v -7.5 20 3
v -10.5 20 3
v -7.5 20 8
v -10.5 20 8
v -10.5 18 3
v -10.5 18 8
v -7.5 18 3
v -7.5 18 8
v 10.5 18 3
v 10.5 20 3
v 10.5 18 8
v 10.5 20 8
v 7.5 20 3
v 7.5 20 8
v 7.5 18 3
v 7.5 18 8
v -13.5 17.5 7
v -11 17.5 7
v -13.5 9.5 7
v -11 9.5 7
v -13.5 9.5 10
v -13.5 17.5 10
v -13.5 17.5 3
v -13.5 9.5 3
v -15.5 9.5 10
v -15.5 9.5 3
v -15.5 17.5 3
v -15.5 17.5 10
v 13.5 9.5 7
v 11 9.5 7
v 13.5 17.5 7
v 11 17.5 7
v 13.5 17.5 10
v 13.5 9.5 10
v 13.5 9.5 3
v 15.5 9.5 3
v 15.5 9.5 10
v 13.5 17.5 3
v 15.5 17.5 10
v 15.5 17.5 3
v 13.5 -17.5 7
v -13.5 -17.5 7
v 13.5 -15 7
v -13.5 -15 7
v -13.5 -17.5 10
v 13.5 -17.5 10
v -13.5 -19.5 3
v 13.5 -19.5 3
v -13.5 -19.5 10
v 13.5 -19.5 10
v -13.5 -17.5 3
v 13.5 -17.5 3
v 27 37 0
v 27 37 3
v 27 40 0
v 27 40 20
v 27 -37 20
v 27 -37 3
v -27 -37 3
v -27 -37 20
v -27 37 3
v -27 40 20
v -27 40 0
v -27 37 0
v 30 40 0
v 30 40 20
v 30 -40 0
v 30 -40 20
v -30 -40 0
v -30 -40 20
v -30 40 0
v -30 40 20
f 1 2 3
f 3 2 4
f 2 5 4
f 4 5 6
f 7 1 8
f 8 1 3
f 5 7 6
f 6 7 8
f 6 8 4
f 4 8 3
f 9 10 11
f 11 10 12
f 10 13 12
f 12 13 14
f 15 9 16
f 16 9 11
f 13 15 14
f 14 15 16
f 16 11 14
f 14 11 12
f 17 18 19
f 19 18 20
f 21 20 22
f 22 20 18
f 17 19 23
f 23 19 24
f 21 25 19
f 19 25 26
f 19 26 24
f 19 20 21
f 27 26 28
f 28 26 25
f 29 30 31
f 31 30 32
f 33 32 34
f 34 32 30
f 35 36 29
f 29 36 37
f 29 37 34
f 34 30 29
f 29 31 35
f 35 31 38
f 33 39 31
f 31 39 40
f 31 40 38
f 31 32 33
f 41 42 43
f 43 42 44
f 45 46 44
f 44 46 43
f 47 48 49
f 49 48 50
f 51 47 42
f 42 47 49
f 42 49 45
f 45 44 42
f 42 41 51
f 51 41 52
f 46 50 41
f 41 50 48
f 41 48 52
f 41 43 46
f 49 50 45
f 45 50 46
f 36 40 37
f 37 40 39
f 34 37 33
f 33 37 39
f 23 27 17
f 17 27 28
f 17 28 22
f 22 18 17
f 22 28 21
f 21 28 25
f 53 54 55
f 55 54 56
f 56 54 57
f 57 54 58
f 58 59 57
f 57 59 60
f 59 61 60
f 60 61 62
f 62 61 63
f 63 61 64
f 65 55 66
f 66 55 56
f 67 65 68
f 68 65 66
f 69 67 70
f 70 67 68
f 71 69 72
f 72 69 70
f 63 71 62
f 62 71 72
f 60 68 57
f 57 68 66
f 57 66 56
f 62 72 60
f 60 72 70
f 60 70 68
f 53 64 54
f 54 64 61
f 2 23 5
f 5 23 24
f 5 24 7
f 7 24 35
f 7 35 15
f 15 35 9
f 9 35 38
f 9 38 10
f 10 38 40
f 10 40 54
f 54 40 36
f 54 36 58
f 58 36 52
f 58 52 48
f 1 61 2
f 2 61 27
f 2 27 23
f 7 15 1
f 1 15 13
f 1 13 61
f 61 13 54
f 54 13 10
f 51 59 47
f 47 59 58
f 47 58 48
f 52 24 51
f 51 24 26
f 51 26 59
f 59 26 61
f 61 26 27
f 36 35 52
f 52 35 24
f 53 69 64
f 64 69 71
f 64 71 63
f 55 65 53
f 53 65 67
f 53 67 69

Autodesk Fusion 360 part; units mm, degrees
sketch "Sketch1" plane through (0, 0, 0) normal (0, 0, 1) x (1, 0, 0)
  line L0 (30, -40) -> (-30, -40)
  line L1 (-30, -40) -> (-30, 40)
  line L2 (-27, 40) -> (27, 40)
  line L3 (30, 40) -> (30, -40)
  line L4 (30, -40) -> (-30, 40) construction
  line L5 (-30, -40) -> (30, 40) construction
  line L6 (27, -37) -> (-27, -37)
  line L7 (-27, -37) -> (-27, 37)
  line L8 (-27, 37) -> (27, 37)
  line L9 (27, 37) -> (27, -37)
  line L10 (27, 37) -> (27, 40)
  line L11 (-27, 37) -> (-27, 40)
  line L12 (27, 40) -> (30, 40)
  line L13 (-30, 40) -> (-27, 40)
  line L14 (13.5, 17.5) -> (-13.5, 17.5)
  line L15 (-13.5, 17.5) -> (-13.5, -17.5)
  line L16 (-13.5, -17.5) -> (13.5, -17.5)
  line L17 (13.5, -17.5) -> (13.5, 17.5)
  line L18 (13.5, 17.5) -> (-13.5, -17.5) construction
  line L19 (-13.5, 17.5) -> (13.5, -17.5) construction
  line L20 (-13.5, -17.5) -> (13.5, -17.5)
  line L21 (13.5, -17.5) -> (13.5, -19.5)
  line L22 (13.5, -19.5) -> (-13.5, -19.5)
  line L23 (-13.5, -19.5) -> (-13.5, -17.5)
  line L24 (13.5, 17.5) -> (15.5, 17.5)
  line L25 (15.5, 17.5) -> (15.5, 9.5)
  line L26 (15.5, 9.5) -> (13.5, 9.5)
  line L27 (13.5, 9.5) -> (13.5, 17.5)
  line L28 (-13.5, 17.5) -> (-15.5, 17.5)
  line L29 (-15.5, 17.5) -> (-15.5, 9.5)
  line L30 (-15.5, 9.5) -> (-13.5, 9.5)
  line L31 (-13.5, 9.5) -> (-13.5, 17.5)
  line L32 (7.5, 18) -> (10.5, 18)
  line L33 (10.5, 18) -> (10.5, 20)
  line L34 (10.5, 20) -> (7.5, 20)
  line L35 (7.5, 20) -> (7.5, 18)
  line L36 (7.5, 18) -> (10.5, 20) construction
  line L37 (10.5, 18) -> (7.5, 20) construction
  line L38 (0, 10) -> (0, 29)
  line L39 (-7.5, 20) -> (-7.5, 18)
  line L40 (-10.5, 20) -> (-7.5, 20)
  line L41 (-7.5, 18) -> (-10.5, 18)
  line L42 (-7.5, 18) -> (-10.5, 20) construction
  line L43 (-10.5, 18) -> (-10.5, 20)
  line L44 (-10.5, 18) -> (-7.5, 20) construction
  point P0 (9, 19)
  point P1 (-9, 19)
  dimension "d1" = 60
  dimension "d2" = 80
  dimension "d8" = 27
  dimension "d9" = 35
  dimension "d10" = 2
  dimension "d11" = 2
  dimension "d12" = 8
  dimension "d13" = 2
  dimension "d14" = 8
  dimension "d24" = 3
  dimension "d25" = 2
extrude "Extrude1" add sketch "Sketch1" along normal blind 3 contours L6 L7 L8 L9 | L14 L15 L16 L17 L20 L27 L31 | L17 L24 L25 L26 L27 | L15 L28 L29 L30 L31 | L16 L20 L21 L22 L23 | L32 L33 L34 L35 | L39 L40 L41 L43
extrude "Extrude2" add sketch "Sketch1" along normal blind 20 contours L0 L1 L3 L6 L7 L9 L10 L11 L12 L13
extrude "Extrude3" add sketch "Sketch1" along normal blind 10 contours L17 L24 L25 L26 L27 | L15 L28 L29 L30 L31 | L16 L20 L21 L22 L23
ref_plane "WorkPlane1" through (14.5, 13.5, 7) normal (0, 0, 1) x (1, 0, 0)
sketch "Sketch2" plane through (0, 0, 7) normal (0, 0, 1) x (1, 0, 0)
  line L0 (15.5, 9.5) -> (13.5, 9.5)
  line L1 (15.5, 17.5) -> (15.5, 9.5)
  line L2 (13.5, 9.5) -> (13.5, 17.5)
  line L3 (13.5, 17.5) -> (15.5, 17.5)
  line L4 (-15.5, 17.5) -> (-15.5, 9.5)
  line L5 (-13.5, 9.5) -> (-13.5, 17.5)
  line L6 (-15.5, 9.5) -> (-13.5, 9.5)
  line L7 (-13.5, 17.5) -> (-15.5, 17.5)
  line L8 (-13.5, 9.5) -> (-13.5, 17.5)
  line L9 (-13.5, 17.5) -> (-15.5, 17.5)
  line L10 (-15.5, 17.5) -> (-15.5, 9.5)
  line L11 (-15.5, 9.5) -> (-13.5, 9.5)
  line L12 (-13.5, -17.5) -> (13.5, -17.5)
  line L13 (13.5, -19.5) -> (-13.5, -19.5)
  line L14 (13.5, -17.5) -> (13.5, -19.5)
  line L15 (-13.5, -19.5) -> (-13.5, -17.5)
  line L16 (15.5, 9.5) -> (11, 9.5)
  line L17 (11, 9.5) -> (11, 17.5)
  line L18 (11, 17.5) -> (15.5, 17.5)
  line L19 (15.5, 17.5) -> (15.5, 9.5)
  line L20 (-13.5, 9.5) -> (-11, 9.5)
  line L21 (-11, 9.5) -> (-11, 17.5)
  line L22 (-11, 17.5) -> (-13.5, 17.5)
  line L23 (-13.5, 17.5) -> (-13.5, 9.5)
  line L24 (13.5, -17.5) -> (-13.5, -17.5)
  line L25 (-13.5, -17.5) -> (-13.5, -15)
  line L26 (-13.5, -15) -> (13.5, -15)
  line L27 (13.5, -15) -> (13.5, -17.5)
  dimension "d18" = 4.5
  dimension "d19" = 8
  dimension "d20" = 2.5
  dimension "d21" = 8
  dimension "d22" = 27
  dimension "d23" = 2.5
loft "Loft1" add profiles "Sketch2" section 1 face at (-4.5, -18.1667, 10) section 2 contours L12 L24 L25 L26 L27 | L12 L13 L14 L15 L24
loft "Loft2" add profiles "Sketch2" section 1 face at (14.8333, 14.8333, 10) section 2 contours L0 L1 L2 L3 L16 L18 L19 | L2 L16 L17 L18
loft "Loft3" add profiles "Sketch2" section 1 face at (-14.1667, 12.1667, 10) section 2 contours L4 L5 L6 L7 L8 L9 L10 L11 L23 | L5 L8 L20 L21 L22 L23
extrude "Extrude4" add sketch "Sketch1" along normal blind 8 contours L32 L33 L34 L35 | L39 L40 L41 L43
